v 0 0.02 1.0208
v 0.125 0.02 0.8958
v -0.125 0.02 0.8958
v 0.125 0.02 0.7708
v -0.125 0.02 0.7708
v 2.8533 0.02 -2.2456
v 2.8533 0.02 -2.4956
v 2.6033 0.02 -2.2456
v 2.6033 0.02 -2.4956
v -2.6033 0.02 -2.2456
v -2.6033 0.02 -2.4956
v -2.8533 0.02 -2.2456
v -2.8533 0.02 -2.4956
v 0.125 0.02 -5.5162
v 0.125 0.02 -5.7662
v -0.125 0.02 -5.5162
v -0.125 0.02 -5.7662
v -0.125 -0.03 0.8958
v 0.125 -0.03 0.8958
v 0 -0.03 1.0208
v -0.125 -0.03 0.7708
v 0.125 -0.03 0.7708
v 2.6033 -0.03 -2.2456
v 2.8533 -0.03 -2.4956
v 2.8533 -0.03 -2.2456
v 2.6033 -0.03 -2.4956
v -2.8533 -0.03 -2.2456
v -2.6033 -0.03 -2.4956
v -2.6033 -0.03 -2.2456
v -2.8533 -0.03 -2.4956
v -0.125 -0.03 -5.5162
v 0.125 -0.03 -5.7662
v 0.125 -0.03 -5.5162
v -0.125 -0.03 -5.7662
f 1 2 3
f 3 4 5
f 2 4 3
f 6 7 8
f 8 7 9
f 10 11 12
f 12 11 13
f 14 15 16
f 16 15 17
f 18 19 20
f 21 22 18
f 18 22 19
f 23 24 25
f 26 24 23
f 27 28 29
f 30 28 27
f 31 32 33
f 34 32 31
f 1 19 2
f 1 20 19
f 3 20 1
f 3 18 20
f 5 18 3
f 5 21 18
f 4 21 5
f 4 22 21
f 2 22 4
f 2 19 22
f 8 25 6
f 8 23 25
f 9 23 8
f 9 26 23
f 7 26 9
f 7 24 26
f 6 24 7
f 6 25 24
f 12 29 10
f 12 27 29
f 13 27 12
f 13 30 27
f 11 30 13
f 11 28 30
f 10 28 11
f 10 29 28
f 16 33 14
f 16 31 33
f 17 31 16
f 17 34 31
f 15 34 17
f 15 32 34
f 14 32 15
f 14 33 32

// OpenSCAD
$fa = 1;
$fs = 0.04;
mag = 1;
thickness = mag * 0.05;
wback = mag * 6.235;
//wfront = mag * 5.529;
wfront = wback;
length = mag * 9.4;
f = 0.98;
base_length = 4.4;
mat_length = 0.5;
angle = 50;
pthick = 0.2;
plate_length = 0.25;


translate([0,0.02,2])
rotate([90,0,0]) 
linear_extrude(thickness) {
    
translate([0,-1-mat_length/3,0]) {
square([plate_length,plate_length/2],center=true);
translate([0,plate_length/4,0])
rotate([0,0,45])
square(plate_length*cos(45),center=true);
}
translate([-pthick/2+base_length*cos(angle), -1-base_length*sin(angle),0])
square(plate_length, center=true);
translate([pthick/2-base_length*cos(angle), -1-base_length*sin(angle),0])
square(plate_length, center=true);
translate([0, pthick/2-1-2*base_length*sin(angle),0])
square(plate_length, center=true);

}
